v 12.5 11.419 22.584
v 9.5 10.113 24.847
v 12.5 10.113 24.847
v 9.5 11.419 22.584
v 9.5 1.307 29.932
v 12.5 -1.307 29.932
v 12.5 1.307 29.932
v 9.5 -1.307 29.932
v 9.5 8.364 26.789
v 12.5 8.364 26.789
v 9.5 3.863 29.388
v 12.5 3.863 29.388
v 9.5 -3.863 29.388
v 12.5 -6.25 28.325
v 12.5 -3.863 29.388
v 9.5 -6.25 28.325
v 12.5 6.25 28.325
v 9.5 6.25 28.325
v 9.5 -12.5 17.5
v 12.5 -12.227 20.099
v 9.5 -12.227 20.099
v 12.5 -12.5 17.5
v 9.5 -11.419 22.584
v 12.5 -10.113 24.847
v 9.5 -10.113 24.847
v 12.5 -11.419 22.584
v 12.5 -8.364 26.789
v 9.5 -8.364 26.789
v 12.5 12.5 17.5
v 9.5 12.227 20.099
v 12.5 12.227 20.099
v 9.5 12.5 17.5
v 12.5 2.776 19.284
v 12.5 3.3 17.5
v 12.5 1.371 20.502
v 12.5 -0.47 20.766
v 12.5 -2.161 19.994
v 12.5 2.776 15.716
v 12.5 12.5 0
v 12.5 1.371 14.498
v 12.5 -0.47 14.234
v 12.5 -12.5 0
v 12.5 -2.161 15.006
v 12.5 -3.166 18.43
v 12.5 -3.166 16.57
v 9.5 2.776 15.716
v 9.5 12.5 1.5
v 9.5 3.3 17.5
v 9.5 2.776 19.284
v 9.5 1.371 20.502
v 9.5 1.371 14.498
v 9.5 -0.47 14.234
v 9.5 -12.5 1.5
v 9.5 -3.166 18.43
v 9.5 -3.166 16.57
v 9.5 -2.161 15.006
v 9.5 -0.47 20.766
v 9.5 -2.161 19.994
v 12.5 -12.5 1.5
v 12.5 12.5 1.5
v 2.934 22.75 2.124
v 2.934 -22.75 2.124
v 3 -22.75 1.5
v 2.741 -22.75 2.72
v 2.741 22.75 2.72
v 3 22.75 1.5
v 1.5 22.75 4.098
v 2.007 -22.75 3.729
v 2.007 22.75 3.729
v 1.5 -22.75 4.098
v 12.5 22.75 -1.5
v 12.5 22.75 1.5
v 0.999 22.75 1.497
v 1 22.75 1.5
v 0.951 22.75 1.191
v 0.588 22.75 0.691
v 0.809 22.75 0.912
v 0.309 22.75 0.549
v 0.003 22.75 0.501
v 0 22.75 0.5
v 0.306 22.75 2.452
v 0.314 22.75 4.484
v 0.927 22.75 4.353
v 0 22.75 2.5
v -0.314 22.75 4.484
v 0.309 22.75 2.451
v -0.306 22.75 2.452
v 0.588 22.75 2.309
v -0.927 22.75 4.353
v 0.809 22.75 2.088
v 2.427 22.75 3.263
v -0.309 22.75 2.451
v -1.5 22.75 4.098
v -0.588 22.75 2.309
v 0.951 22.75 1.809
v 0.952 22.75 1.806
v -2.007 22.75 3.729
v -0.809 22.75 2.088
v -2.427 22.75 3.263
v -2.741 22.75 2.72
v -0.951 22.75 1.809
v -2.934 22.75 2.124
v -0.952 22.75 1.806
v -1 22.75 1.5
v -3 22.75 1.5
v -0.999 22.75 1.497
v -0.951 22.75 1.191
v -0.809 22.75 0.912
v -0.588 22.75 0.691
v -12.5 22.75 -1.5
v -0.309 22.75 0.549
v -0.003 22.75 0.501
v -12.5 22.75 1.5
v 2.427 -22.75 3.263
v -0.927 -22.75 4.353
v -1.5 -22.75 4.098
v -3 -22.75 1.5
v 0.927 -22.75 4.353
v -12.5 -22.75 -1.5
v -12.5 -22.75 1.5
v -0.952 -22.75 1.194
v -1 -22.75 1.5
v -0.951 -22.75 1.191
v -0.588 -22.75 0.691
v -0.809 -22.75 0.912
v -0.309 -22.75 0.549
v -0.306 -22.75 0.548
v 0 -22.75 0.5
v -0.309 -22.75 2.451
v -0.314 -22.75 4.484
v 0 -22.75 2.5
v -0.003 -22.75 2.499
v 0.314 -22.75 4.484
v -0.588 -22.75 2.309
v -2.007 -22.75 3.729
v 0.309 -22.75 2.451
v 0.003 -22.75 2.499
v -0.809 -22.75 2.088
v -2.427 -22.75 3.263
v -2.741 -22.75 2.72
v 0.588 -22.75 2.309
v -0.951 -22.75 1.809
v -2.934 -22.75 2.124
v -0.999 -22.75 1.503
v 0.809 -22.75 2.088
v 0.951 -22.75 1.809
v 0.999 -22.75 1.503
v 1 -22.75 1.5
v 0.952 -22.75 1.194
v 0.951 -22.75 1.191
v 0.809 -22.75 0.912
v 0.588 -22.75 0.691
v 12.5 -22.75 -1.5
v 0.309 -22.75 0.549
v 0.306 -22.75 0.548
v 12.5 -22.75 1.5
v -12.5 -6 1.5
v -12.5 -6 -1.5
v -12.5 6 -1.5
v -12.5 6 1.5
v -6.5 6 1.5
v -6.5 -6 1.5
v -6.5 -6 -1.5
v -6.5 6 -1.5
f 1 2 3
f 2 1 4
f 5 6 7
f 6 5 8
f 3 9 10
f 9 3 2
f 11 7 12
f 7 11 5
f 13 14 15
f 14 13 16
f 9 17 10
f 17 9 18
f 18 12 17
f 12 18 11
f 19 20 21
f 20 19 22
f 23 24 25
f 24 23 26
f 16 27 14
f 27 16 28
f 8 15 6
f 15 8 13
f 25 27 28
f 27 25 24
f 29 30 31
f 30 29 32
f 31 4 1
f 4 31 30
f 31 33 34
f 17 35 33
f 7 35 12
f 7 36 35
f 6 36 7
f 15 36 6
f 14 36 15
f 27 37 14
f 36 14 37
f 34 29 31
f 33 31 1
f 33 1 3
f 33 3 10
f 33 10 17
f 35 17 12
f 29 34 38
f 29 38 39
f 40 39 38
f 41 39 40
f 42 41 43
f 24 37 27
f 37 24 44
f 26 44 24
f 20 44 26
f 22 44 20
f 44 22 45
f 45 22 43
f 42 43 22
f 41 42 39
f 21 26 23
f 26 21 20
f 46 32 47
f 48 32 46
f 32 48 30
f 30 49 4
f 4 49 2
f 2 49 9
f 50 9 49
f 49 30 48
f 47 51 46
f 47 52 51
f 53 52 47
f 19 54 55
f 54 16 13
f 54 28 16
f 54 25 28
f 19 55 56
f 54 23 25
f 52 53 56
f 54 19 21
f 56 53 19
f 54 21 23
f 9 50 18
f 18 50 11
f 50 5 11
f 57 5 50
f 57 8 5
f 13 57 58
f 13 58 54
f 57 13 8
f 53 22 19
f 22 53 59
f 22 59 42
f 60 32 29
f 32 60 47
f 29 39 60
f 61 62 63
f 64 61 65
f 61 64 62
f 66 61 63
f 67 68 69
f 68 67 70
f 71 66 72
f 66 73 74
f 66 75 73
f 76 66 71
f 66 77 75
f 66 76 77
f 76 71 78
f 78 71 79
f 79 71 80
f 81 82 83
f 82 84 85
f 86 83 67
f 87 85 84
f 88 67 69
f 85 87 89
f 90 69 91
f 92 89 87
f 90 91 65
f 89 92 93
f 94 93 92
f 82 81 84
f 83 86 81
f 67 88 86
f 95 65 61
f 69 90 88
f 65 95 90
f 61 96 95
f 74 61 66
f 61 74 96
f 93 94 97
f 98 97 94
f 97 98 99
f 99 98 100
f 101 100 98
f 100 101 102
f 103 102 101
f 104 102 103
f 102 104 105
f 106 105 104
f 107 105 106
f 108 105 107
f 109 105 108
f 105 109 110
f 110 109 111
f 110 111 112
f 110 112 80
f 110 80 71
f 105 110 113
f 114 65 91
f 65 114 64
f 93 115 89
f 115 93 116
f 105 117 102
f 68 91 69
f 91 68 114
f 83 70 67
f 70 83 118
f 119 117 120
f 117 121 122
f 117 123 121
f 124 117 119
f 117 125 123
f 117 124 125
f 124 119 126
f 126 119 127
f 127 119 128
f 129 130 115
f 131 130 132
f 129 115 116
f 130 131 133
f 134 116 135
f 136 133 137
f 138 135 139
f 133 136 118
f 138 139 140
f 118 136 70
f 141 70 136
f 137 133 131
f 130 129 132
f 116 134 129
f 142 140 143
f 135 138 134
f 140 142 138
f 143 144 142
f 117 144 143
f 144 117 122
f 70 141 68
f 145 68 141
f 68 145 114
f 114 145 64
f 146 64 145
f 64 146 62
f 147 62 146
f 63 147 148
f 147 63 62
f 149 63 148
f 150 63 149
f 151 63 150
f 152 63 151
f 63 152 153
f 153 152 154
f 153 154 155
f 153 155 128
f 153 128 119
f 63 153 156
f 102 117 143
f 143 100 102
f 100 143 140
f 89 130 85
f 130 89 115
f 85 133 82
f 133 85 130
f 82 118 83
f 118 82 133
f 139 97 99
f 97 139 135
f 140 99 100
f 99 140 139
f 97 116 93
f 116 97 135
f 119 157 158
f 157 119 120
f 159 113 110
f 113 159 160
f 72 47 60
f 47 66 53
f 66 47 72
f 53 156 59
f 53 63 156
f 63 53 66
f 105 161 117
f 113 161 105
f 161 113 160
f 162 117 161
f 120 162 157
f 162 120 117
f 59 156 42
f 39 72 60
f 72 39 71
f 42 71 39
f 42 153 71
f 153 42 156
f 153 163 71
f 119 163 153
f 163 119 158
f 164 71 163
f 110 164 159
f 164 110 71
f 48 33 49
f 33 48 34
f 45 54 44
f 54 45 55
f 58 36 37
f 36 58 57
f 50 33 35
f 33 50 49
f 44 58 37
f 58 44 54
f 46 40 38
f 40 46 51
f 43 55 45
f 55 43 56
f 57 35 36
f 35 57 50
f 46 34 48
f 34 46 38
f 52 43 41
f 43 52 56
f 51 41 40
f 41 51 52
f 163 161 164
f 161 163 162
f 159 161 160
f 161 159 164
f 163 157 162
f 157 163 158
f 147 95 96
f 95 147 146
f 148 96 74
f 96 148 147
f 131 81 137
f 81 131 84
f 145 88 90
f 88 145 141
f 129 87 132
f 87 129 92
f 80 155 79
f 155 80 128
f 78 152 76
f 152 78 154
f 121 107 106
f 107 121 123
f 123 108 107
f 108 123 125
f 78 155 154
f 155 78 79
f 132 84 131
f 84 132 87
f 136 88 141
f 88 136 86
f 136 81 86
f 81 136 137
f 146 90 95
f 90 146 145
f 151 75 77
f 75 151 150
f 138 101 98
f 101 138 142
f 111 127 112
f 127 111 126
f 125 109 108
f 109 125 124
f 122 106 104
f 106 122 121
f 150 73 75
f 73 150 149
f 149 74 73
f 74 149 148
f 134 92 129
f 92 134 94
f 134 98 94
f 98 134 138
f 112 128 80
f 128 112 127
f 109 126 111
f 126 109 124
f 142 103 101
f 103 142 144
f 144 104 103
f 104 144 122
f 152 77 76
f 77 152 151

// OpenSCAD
raioMaior = 12.5;
raioMenor = 3.3; 

largura = 25;
comprimento = 45.5; 
paredeGrossa = 3; 
paredeFina = 2; 
altura = paredeGrossa; 
deslSup = 5 + raioMaior; // deslocamento do suporte onde a preça será presa no robô 

module suporteParafuso () {
 translate([0,0,  + altura/2])
 rotate([90,0,0])
    cylinder($fn=30, comprimento,3,3,true); 

}

module base() {
 
 suporteParafuso();
 cube([largura,comprimento,altura],true);
    
 translate([(largura - paredeGrossa )/2,0, deslSup])
 rotate([90,0,90]) {
     cylinder(paredeGrossa,raioMaior,raioMaior,true);
    translate([0,-deslSup/2,0]) 
    cube([largura,deslSup,altura],true);
 }
}

module furos() {
    
    // suporte 
    translate([(largura-paredeGrossa)/2,0, deslSup])
 rotate([90,0,90]) { 
    
  cylinder(altura+1,raioMenor,raioMenor,true);
 }

 // saida pinos 
  lFuroPinos = 6; 
  translate([-(largura-lFuroPinos)/2,0, 0])
 
  cube([lFuroPinos,12,altura+1],true);
 


 translate([0,0,  altura/2])
 rotate([90,0,0])
 cylinder($fn=20, comprimento+1,1,1,true);

}



difference(){
base(); 
furos();

}

 
 
 
 
